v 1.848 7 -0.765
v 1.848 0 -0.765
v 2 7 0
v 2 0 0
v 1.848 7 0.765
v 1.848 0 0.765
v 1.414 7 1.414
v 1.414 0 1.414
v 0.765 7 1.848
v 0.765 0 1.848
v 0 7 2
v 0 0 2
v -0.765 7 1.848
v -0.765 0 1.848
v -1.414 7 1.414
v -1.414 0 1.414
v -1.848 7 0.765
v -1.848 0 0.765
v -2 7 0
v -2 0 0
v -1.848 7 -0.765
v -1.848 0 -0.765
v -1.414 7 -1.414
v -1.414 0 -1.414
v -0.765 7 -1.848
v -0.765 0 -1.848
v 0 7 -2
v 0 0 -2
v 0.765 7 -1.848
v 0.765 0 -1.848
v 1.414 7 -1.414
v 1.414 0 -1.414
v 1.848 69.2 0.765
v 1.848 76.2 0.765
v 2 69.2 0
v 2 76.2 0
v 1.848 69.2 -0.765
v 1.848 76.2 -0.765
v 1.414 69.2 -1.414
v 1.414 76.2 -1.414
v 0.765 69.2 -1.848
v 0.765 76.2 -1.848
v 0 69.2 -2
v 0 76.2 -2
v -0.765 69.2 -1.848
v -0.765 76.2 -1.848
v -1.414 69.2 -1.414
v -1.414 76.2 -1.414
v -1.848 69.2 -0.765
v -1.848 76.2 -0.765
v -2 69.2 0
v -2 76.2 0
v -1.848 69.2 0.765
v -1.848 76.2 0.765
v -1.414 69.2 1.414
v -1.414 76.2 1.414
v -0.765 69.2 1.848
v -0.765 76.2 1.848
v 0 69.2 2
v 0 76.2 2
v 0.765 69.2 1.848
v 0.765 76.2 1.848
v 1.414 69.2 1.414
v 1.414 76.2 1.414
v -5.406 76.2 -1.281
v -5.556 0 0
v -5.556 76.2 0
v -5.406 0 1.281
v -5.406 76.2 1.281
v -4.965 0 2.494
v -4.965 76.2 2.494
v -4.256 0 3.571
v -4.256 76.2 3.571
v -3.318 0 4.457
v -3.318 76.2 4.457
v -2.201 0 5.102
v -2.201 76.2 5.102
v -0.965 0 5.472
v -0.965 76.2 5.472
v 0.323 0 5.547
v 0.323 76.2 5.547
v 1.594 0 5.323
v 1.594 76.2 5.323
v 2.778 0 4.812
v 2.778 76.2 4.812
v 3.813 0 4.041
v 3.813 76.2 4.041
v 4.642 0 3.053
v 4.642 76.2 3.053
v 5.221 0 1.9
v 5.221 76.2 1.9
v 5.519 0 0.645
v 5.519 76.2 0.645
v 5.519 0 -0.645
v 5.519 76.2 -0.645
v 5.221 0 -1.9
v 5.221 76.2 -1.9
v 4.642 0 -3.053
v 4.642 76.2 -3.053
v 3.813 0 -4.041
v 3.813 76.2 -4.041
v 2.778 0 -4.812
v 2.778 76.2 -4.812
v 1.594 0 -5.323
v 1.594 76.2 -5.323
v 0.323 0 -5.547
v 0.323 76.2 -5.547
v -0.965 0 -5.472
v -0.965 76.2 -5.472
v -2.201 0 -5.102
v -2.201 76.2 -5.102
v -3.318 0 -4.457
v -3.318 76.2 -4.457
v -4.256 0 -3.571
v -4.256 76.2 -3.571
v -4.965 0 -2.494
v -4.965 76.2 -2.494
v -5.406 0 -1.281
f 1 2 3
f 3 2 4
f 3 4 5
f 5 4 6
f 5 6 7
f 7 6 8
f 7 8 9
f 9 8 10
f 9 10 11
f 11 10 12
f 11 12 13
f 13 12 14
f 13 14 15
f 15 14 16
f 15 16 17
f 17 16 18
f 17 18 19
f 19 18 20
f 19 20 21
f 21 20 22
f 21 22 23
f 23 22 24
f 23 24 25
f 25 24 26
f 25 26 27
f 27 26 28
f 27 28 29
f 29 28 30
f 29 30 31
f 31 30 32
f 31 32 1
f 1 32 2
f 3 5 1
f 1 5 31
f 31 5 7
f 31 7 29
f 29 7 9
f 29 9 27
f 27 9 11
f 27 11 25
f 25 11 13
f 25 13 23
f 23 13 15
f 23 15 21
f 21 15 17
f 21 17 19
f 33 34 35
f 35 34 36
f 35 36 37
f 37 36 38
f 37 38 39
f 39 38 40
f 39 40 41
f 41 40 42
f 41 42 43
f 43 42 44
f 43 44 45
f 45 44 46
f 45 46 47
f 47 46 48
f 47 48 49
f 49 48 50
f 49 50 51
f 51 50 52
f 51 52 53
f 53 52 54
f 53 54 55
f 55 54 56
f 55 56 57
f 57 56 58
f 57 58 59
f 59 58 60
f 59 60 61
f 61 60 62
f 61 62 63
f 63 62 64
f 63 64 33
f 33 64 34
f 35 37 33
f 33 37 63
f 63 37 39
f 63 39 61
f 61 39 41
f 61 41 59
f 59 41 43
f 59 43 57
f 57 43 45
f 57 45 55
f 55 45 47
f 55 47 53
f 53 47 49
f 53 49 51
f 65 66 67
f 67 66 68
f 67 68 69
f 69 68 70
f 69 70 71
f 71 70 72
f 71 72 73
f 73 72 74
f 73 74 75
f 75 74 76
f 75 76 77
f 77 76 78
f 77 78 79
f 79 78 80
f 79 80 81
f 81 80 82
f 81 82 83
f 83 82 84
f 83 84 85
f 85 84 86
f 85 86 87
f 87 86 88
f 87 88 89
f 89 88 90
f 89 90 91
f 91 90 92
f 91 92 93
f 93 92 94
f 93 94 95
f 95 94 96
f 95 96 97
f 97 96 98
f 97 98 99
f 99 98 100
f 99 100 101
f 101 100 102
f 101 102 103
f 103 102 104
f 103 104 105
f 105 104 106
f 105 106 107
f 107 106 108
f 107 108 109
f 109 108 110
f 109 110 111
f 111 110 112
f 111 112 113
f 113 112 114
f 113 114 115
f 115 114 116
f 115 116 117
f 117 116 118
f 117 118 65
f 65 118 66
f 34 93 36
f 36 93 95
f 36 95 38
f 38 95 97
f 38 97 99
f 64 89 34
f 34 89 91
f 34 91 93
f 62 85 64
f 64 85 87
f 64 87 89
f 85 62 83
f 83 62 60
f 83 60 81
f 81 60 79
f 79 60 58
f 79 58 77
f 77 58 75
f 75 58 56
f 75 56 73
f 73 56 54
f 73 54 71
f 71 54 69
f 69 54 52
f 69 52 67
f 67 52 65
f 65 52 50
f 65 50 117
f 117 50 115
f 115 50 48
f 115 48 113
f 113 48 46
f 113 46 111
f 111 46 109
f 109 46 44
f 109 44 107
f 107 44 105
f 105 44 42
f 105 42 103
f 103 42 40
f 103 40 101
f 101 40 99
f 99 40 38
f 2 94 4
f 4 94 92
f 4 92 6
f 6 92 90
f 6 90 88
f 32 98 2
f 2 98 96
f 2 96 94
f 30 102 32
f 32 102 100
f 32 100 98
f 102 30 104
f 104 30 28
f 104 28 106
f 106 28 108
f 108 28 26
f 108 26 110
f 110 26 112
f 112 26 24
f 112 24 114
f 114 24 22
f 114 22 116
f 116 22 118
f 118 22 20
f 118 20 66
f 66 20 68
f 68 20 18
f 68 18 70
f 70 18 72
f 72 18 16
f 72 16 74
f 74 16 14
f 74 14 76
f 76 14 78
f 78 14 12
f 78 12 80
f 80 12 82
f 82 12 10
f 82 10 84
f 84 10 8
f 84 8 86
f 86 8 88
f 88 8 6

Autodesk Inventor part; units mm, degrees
ref_plane "YZ Plane" through (0, 0, 0) normal (1, 0, 0) x (0, 1, 0)
ref_plane "XZ Plane" through (0, 0, 0) normal (0, 1, 0) x (-1, 0, 0)
ref_plane "XY Plane" through (0, 0, 0) normal (0, 0, 1) x (1, 0, 0)
sketch "Sketch1" plane through (0, 0, 0) normal (0, 1, 0) x (-1, 0, 0)
  circle A0 centre (0, 0) radius 5.5563
  dimension "d0" = 11.1125
extrude "Extrusion1" add sketch "Sketch1" along normal blind 76.2
sketch "Sketch2" plane through (0, 0, 0) normal (0, -1, 0) x (1, 0, 0)
  circle A0 centre (0, 0) radius 2
  dimension "d3" = 4
sketch "Sketch3" plane through (0, 76.2, 0) normal (0, 1, 0) x (1, 0, 0)
  circle A0 centre (0, 0) radius 2
  dimension "d4" = 4
extrude "Extrusion2" cut sketch "Sketch3" against normal blind 7
extrude "Extrusion3" cut sketch "Sketch2" against normal blind 7
equation "\"d3\" = m3_heat_set_insert"
equation "\"d4\" = m3_heat_set_insert"
equation "\"d5\" = m3_heat_set_depth"
equation "\"d7\" = m3_heat_set_depth"
equation "\"m3_heat_set_insert\" = 4"
equation "\"m3_clearance\" = 3.4"
equation "\"m3_heat_set_depth\" = 7"
equation "\"hardboard_thickness\" = 5"
equation "\"robot_diameter\" = 354"
equation "\"motor_centerline_height\" = 13"
properties part number "3inch_standoff"
